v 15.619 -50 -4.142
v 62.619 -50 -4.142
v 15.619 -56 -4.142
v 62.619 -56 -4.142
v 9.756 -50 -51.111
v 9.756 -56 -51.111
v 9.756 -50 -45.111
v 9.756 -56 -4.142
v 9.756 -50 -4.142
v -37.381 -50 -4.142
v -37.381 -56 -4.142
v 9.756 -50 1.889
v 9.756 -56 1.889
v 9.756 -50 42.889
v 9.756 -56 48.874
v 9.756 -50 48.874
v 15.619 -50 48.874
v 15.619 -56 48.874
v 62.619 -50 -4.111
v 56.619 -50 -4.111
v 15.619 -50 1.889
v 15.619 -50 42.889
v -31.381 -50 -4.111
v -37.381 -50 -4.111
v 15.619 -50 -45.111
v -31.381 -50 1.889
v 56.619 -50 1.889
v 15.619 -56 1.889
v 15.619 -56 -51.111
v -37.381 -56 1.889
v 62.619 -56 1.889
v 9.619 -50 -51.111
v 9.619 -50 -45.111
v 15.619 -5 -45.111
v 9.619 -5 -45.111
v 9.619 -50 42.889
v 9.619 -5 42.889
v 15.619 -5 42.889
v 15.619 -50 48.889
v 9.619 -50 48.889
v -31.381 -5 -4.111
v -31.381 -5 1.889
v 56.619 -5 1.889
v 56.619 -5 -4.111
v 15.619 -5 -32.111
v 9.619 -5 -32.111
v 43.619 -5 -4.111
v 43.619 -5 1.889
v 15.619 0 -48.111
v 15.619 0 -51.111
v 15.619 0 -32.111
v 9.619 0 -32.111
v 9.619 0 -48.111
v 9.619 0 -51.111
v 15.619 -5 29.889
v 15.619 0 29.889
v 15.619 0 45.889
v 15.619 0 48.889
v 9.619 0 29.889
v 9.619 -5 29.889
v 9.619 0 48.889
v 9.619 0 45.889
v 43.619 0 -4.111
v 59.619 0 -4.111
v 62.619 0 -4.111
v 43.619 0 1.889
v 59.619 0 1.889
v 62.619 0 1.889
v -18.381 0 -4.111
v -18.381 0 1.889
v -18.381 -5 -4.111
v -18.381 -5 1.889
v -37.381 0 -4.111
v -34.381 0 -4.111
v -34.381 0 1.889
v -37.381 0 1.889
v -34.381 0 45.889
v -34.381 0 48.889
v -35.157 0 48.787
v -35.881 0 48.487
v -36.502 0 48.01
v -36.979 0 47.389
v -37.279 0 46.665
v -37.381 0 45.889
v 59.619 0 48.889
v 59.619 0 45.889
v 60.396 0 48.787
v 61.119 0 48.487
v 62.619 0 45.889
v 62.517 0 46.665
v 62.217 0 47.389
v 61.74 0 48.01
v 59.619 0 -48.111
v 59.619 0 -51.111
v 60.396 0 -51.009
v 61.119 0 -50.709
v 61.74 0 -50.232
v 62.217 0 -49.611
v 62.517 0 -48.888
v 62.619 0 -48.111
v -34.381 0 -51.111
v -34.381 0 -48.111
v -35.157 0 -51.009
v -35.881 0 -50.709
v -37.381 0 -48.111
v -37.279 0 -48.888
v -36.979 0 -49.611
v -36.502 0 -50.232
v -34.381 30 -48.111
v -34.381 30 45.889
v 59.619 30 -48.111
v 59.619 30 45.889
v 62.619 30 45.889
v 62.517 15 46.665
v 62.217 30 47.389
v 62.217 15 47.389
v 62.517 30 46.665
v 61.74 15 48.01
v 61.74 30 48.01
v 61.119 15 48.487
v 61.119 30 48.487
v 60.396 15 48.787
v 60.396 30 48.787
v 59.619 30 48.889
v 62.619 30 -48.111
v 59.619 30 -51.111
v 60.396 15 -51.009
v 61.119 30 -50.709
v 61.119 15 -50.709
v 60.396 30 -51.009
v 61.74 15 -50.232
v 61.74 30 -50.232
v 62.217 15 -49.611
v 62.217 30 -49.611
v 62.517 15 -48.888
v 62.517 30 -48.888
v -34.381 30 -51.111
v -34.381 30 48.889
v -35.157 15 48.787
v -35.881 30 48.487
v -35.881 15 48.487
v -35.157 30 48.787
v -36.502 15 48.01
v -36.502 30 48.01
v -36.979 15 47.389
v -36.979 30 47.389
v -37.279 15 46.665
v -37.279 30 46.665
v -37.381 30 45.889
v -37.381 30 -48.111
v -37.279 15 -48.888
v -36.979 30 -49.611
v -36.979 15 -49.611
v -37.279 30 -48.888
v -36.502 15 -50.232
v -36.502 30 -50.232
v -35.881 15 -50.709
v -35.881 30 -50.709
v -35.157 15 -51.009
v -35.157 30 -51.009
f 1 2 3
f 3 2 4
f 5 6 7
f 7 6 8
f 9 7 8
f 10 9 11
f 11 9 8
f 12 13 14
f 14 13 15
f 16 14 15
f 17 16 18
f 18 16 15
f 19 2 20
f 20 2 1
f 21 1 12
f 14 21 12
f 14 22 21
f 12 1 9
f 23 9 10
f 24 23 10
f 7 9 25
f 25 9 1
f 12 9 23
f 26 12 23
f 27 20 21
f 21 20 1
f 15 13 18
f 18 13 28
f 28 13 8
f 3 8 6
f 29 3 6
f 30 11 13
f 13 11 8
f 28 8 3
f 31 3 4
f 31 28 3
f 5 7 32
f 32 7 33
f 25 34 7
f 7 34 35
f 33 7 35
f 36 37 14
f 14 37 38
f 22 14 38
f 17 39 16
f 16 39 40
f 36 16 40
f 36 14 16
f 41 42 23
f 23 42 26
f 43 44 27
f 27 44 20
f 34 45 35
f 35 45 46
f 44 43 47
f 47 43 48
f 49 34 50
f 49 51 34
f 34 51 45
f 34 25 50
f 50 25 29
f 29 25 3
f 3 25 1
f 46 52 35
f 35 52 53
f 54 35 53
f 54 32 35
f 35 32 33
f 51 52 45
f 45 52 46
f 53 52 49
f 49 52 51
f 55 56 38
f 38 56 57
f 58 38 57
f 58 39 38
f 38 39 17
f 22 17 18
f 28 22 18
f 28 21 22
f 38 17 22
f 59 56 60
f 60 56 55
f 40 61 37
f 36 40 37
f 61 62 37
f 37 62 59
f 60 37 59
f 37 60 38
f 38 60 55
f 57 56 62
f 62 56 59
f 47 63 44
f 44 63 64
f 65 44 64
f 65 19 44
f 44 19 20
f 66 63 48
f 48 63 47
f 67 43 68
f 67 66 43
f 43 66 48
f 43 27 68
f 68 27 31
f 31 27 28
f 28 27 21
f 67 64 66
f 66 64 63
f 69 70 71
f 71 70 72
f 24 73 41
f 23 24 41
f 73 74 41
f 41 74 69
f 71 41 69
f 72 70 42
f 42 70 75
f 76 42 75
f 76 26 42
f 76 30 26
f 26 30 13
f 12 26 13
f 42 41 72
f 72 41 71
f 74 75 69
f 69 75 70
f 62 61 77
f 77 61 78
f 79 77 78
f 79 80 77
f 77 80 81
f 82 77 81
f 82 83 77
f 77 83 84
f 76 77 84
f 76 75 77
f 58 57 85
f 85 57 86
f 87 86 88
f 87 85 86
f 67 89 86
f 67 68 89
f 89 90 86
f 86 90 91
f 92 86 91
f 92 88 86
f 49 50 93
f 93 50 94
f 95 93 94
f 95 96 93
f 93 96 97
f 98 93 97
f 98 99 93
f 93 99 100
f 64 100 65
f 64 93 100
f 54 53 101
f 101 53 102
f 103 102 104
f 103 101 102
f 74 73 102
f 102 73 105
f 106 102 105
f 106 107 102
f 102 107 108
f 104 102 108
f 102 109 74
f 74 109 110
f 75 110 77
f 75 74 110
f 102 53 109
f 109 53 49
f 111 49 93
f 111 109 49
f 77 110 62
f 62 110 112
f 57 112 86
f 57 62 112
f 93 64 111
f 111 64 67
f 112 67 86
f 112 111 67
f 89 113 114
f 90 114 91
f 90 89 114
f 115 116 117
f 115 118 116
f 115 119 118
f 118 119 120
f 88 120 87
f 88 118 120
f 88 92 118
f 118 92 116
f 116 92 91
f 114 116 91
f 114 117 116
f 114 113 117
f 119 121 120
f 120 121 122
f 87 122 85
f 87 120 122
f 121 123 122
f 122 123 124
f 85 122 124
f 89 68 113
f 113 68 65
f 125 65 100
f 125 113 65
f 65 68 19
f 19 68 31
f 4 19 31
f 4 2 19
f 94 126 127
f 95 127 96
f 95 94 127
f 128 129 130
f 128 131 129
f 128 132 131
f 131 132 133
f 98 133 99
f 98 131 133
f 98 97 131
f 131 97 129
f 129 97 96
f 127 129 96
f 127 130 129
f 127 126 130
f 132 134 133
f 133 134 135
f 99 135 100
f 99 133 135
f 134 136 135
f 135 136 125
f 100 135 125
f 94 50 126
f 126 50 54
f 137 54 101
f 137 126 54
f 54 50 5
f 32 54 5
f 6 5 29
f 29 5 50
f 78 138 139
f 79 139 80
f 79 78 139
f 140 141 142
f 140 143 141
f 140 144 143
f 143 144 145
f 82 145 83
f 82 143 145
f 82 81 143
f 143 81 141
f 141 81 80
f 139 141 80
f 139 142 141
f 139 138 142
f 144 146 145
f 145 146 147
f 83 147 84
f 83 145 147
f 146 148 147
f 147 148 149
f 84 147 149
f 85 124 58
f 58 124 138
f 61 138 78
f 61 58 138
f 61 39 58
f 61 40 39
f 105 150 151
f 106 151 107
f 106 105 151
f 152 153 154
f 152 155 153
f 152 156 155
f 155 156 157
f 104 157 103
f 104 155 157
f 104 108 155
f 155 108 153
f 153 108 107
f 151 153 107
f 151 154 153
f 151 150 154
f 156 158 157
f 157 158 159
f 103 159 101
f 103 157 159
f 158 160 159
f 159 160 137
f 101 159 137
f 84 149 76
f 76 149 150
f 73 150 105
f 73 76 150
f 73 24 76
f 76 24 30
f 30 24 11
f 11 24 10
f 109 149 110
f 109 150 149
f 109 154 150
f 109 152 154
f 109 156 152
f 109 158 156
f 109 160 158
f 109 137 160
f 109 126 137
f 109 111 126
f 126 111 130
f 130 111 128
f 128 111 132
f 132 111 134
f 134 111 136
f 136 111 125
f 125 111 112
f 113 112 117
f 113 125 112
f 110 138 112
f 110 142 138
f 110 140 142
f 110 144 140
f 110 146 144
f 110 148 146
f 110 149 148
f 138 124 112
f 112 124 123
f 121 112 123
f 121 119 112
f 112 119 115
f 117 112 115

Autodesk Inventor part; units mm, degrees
ref_plane "YZ Plane" through (0, 0, 0) normal (1, 0, 0) x (0, 1, 0)
ref_plane "XZ Plane" through (0, 0, 0) normal (0, 1, 0) x (-1, 0, 0)
ref_plane "XY Plane" through (0, 0, 0) normal (0, 0, 1) x (1, 0, 0)
sketch "Sketch1" plane through (0, 0, 0) normal (0, 1, 0) x (-1, 0, 0)
  line L0 (37.3809, 48.8889) -> (-62.6191, 48.8889)
  line L1 (-62.6191, 48.8889) -> (-62.6191, -51.1111)
  line L2 (-62.6191, -51.1111) -> (37.3809, -51.1111)
  line L3 (37.3809, -51.1111) -> (37.3809, 48.8889)
  point P0 (0, 0)
  dimension "d0" = 100
  dimension "d1" = 100
extrude "Extrusion1" add sketch "Sketch1" along normal blind 30
fillet "Fillet1" radius 3 4 edges at (-37.3809, 15, -51.1111) (-37.3809, 15, 48.8889) (62.6191, 15, -51.1111) (62.6191, 15, 48.8889)
shell "Shell1" thickness 3 removed faces 2 at (27.2857, 30, 14.5556) at (27.2857, 0, 14.5556)
sketch "Sketch2" plane through (0, 0, 0) normal (0, -1, 0) x (1, 0, 0)
  line L0 (-34.3809, 48.8889) -> (59.6191, 48.8889) projected
  line L1 (15.6191, 48.8889) -> (9.6191, 48.8889)
  line L2 (9.6191, 48.8889) -> (9.6191, 29.8889)
  line L3 (9.6191, 29.8889) -> (15.6191, 29.8889)
  line L4 (15.6191, 29.8889) -> (15.6191, 48.8889)
  line L5 (62.6191, 45.8889) -> (62.6191, -48.1111) projected
  line L6 (62.6191, 1.8889) -> (43.6191, 1.8889)
  line L7 (43.6191, 1.8889) -> (43.6191, -4.1111)
  line L8 (43.6191, -4.1111) -> (62.6191, -4.1111)
  line L9 (62.6191, -4.1111) -> (62.6191, 1.8889)
  line L10 (59.6191, -51.1111) -> (-34.3809, -51.1111) projected
  line L11 (15.6191, -32.1111) -> (9.6191, -32.1111)
  line L12 (9.6191, -32.1111) -> (9.6191, -51.1111)
  line L13 (9.6191, -51.1111) -> (15.6191, -51.1111)
  line L14 (15.6191, -51.1111) -> (15.6191, -32.1111)
  line L15 (-37.3809, -48.1111) -> (-37.3809, 45.8889) projected
  line L16 (-18.3809, 1.8889) -> (-37.3809, 1.8889)
  line L17 (-37.3809, 1.8889) -> (-37.3809, -4.1111)
  line L18 (-37.3809, -4.1111) -> (-18.3809, -4.1111)
  line L19 (-18.3809, -4.1111) -> (-18.3809, 1.8889)
  point P0 (0, 0)
  dimension "d6" = 6
  dimension "d7" = 47
  dimension "d8" = 19
  dimension "d9" = 6
  dimension "d10" = 19
  dimension "d11" = 47
  dimension "d12" = 6
  dimension "d13" = 19
  dimension "d14" = 47
  dimension "d15" = 6
  dimension "d16" = 19
  dimension "d17" = 47
extrude "Extrusion2" add sketch "Sketch2" along normal blind 5
sketch "Sketch3" plane through (0, -5, 0) normal (0, -1, 0) x (1, 0, 0)
  line L0 (-34.3809, 48.8889) -> (9.6191, 48.8889) projected
  line L1 (15.6191, 29.8889) -> (15.6191, 45.8889) projected
  line L2 (9.6191, 48.8889) -> (15.6191, 48.8889)
  line L3 (15.6191, 48.8889) -> (15.6191, 42.8889)
  line L4 (15.6191, 42.8889) -> (9.6191, 42.8889)
  line L5 (9.6191, 42.8889) -> (9.6191, 48.8889)
  line L6 (-18.3809, 1.8889) -> (-37.3809, 1.8889) projected
  line L7 (-34.3809, -4.1111) -> (-18.3809, -4.1111) projected
  line L8 (-37.3809, 1.8889) -> (-31.3809, 1.8889)
  line L9 (-31.3809, 1.8889) -> (-31.3809, -4.1111)
  line L10 (-31.3809, -4.1111) -> (-37.3809, -4.1111)
  line L11 (-37.3809, -4.1111) -> (-37.3809, 1.8889)
  line L12 (9.6191, -32.1111) -> (9.6191, -51.1111) projected
  line L13 (9.6191, -45.1111) -> (15.6191, -45.1111)
  line L14 (15.6191, -45.1111) -> (15.6191, -51.1111)
  line L15 (15.6191, -51.1111) -> (9.6191, -51.1111)
  line L16 (9.6191, -51.1111) -> (9.6191, -45.1111)
  line L17 (59.6191, 1.8889) -> (43.6191, 1.8889) projected
  line L18 (62.6191, 45.8889) -> (62.6191, -48.1111) projected
  line L19 (56.6191, 1.8889) -> (62.6191, 1.8889)
  line L20 (62.6191, 1.8889) -> (62.6191, -4.1111)
  line L21 (62.6191, -4.1111) -> (56.6191, -4.1111)
  line L22 (56.6191, -4.1111) -> (56.6191, 1.8889)
  point P0 (0, 0)
  dimension "d20" = 6
  dimension "d21" = 6
  dimension "d22" = 6
  dimension "d23" = 6
  dimension "d24" = 6
extrude "Extrusion3" add sketch "Sketch3" along normal blind 45
sketch "Sketch4" plane through (0, -50, 0) normal (0, -1, 0) x (1, 0, 0)
  line L0 (15.6191, -48.1111) -> (15.6191, -51.1111) projected
  line L1 (9.7564, 48.8742) -> (15.6191, 48.8742)
  line L2 (15.6191, -51.1111) -> (9.7564, -51.1111)
  line L3 (-37.3809, 1.8889) -> (-37.3809, 45.8889) projected
  line L4 (62.6191, 45.8889) -> (62.6191, -48.1111) projected
  line L5 (62.6191, 1.8889) -> (62.6191, -4.1419)
  line L6 (-37.3809, -4.1419) -> (-37.3809, 1.8889)
  line L7 (-37.3809, 1.8889) -> (9.7564, 1.8889)
  line L8 (15.6191, 1.8889) -> (62.6191, 1.8889)
  line L9 (9.7564, -51.1111) -> (9.7564, -4.1419)
  line L10 (9.7564, 1.8889) -> (9.7564, 48.8742)
  line L11 (62.6191, -4.1419) -> (15.6191, -4.1419)
  line L12 (9.7564, -4.1419) -> (-37.3809, -4.1419)
  line L13 (15.6191, 48.8742) -> (15.6191, 1.8889)
  line L14 (15.6191, -4.1419) -> (15.6191, -51.1111)
  point P0 (0, 0)
extrude "Extrusion4" add sketch "Sketch4" along normal blind 6
properties part number "bottom"
